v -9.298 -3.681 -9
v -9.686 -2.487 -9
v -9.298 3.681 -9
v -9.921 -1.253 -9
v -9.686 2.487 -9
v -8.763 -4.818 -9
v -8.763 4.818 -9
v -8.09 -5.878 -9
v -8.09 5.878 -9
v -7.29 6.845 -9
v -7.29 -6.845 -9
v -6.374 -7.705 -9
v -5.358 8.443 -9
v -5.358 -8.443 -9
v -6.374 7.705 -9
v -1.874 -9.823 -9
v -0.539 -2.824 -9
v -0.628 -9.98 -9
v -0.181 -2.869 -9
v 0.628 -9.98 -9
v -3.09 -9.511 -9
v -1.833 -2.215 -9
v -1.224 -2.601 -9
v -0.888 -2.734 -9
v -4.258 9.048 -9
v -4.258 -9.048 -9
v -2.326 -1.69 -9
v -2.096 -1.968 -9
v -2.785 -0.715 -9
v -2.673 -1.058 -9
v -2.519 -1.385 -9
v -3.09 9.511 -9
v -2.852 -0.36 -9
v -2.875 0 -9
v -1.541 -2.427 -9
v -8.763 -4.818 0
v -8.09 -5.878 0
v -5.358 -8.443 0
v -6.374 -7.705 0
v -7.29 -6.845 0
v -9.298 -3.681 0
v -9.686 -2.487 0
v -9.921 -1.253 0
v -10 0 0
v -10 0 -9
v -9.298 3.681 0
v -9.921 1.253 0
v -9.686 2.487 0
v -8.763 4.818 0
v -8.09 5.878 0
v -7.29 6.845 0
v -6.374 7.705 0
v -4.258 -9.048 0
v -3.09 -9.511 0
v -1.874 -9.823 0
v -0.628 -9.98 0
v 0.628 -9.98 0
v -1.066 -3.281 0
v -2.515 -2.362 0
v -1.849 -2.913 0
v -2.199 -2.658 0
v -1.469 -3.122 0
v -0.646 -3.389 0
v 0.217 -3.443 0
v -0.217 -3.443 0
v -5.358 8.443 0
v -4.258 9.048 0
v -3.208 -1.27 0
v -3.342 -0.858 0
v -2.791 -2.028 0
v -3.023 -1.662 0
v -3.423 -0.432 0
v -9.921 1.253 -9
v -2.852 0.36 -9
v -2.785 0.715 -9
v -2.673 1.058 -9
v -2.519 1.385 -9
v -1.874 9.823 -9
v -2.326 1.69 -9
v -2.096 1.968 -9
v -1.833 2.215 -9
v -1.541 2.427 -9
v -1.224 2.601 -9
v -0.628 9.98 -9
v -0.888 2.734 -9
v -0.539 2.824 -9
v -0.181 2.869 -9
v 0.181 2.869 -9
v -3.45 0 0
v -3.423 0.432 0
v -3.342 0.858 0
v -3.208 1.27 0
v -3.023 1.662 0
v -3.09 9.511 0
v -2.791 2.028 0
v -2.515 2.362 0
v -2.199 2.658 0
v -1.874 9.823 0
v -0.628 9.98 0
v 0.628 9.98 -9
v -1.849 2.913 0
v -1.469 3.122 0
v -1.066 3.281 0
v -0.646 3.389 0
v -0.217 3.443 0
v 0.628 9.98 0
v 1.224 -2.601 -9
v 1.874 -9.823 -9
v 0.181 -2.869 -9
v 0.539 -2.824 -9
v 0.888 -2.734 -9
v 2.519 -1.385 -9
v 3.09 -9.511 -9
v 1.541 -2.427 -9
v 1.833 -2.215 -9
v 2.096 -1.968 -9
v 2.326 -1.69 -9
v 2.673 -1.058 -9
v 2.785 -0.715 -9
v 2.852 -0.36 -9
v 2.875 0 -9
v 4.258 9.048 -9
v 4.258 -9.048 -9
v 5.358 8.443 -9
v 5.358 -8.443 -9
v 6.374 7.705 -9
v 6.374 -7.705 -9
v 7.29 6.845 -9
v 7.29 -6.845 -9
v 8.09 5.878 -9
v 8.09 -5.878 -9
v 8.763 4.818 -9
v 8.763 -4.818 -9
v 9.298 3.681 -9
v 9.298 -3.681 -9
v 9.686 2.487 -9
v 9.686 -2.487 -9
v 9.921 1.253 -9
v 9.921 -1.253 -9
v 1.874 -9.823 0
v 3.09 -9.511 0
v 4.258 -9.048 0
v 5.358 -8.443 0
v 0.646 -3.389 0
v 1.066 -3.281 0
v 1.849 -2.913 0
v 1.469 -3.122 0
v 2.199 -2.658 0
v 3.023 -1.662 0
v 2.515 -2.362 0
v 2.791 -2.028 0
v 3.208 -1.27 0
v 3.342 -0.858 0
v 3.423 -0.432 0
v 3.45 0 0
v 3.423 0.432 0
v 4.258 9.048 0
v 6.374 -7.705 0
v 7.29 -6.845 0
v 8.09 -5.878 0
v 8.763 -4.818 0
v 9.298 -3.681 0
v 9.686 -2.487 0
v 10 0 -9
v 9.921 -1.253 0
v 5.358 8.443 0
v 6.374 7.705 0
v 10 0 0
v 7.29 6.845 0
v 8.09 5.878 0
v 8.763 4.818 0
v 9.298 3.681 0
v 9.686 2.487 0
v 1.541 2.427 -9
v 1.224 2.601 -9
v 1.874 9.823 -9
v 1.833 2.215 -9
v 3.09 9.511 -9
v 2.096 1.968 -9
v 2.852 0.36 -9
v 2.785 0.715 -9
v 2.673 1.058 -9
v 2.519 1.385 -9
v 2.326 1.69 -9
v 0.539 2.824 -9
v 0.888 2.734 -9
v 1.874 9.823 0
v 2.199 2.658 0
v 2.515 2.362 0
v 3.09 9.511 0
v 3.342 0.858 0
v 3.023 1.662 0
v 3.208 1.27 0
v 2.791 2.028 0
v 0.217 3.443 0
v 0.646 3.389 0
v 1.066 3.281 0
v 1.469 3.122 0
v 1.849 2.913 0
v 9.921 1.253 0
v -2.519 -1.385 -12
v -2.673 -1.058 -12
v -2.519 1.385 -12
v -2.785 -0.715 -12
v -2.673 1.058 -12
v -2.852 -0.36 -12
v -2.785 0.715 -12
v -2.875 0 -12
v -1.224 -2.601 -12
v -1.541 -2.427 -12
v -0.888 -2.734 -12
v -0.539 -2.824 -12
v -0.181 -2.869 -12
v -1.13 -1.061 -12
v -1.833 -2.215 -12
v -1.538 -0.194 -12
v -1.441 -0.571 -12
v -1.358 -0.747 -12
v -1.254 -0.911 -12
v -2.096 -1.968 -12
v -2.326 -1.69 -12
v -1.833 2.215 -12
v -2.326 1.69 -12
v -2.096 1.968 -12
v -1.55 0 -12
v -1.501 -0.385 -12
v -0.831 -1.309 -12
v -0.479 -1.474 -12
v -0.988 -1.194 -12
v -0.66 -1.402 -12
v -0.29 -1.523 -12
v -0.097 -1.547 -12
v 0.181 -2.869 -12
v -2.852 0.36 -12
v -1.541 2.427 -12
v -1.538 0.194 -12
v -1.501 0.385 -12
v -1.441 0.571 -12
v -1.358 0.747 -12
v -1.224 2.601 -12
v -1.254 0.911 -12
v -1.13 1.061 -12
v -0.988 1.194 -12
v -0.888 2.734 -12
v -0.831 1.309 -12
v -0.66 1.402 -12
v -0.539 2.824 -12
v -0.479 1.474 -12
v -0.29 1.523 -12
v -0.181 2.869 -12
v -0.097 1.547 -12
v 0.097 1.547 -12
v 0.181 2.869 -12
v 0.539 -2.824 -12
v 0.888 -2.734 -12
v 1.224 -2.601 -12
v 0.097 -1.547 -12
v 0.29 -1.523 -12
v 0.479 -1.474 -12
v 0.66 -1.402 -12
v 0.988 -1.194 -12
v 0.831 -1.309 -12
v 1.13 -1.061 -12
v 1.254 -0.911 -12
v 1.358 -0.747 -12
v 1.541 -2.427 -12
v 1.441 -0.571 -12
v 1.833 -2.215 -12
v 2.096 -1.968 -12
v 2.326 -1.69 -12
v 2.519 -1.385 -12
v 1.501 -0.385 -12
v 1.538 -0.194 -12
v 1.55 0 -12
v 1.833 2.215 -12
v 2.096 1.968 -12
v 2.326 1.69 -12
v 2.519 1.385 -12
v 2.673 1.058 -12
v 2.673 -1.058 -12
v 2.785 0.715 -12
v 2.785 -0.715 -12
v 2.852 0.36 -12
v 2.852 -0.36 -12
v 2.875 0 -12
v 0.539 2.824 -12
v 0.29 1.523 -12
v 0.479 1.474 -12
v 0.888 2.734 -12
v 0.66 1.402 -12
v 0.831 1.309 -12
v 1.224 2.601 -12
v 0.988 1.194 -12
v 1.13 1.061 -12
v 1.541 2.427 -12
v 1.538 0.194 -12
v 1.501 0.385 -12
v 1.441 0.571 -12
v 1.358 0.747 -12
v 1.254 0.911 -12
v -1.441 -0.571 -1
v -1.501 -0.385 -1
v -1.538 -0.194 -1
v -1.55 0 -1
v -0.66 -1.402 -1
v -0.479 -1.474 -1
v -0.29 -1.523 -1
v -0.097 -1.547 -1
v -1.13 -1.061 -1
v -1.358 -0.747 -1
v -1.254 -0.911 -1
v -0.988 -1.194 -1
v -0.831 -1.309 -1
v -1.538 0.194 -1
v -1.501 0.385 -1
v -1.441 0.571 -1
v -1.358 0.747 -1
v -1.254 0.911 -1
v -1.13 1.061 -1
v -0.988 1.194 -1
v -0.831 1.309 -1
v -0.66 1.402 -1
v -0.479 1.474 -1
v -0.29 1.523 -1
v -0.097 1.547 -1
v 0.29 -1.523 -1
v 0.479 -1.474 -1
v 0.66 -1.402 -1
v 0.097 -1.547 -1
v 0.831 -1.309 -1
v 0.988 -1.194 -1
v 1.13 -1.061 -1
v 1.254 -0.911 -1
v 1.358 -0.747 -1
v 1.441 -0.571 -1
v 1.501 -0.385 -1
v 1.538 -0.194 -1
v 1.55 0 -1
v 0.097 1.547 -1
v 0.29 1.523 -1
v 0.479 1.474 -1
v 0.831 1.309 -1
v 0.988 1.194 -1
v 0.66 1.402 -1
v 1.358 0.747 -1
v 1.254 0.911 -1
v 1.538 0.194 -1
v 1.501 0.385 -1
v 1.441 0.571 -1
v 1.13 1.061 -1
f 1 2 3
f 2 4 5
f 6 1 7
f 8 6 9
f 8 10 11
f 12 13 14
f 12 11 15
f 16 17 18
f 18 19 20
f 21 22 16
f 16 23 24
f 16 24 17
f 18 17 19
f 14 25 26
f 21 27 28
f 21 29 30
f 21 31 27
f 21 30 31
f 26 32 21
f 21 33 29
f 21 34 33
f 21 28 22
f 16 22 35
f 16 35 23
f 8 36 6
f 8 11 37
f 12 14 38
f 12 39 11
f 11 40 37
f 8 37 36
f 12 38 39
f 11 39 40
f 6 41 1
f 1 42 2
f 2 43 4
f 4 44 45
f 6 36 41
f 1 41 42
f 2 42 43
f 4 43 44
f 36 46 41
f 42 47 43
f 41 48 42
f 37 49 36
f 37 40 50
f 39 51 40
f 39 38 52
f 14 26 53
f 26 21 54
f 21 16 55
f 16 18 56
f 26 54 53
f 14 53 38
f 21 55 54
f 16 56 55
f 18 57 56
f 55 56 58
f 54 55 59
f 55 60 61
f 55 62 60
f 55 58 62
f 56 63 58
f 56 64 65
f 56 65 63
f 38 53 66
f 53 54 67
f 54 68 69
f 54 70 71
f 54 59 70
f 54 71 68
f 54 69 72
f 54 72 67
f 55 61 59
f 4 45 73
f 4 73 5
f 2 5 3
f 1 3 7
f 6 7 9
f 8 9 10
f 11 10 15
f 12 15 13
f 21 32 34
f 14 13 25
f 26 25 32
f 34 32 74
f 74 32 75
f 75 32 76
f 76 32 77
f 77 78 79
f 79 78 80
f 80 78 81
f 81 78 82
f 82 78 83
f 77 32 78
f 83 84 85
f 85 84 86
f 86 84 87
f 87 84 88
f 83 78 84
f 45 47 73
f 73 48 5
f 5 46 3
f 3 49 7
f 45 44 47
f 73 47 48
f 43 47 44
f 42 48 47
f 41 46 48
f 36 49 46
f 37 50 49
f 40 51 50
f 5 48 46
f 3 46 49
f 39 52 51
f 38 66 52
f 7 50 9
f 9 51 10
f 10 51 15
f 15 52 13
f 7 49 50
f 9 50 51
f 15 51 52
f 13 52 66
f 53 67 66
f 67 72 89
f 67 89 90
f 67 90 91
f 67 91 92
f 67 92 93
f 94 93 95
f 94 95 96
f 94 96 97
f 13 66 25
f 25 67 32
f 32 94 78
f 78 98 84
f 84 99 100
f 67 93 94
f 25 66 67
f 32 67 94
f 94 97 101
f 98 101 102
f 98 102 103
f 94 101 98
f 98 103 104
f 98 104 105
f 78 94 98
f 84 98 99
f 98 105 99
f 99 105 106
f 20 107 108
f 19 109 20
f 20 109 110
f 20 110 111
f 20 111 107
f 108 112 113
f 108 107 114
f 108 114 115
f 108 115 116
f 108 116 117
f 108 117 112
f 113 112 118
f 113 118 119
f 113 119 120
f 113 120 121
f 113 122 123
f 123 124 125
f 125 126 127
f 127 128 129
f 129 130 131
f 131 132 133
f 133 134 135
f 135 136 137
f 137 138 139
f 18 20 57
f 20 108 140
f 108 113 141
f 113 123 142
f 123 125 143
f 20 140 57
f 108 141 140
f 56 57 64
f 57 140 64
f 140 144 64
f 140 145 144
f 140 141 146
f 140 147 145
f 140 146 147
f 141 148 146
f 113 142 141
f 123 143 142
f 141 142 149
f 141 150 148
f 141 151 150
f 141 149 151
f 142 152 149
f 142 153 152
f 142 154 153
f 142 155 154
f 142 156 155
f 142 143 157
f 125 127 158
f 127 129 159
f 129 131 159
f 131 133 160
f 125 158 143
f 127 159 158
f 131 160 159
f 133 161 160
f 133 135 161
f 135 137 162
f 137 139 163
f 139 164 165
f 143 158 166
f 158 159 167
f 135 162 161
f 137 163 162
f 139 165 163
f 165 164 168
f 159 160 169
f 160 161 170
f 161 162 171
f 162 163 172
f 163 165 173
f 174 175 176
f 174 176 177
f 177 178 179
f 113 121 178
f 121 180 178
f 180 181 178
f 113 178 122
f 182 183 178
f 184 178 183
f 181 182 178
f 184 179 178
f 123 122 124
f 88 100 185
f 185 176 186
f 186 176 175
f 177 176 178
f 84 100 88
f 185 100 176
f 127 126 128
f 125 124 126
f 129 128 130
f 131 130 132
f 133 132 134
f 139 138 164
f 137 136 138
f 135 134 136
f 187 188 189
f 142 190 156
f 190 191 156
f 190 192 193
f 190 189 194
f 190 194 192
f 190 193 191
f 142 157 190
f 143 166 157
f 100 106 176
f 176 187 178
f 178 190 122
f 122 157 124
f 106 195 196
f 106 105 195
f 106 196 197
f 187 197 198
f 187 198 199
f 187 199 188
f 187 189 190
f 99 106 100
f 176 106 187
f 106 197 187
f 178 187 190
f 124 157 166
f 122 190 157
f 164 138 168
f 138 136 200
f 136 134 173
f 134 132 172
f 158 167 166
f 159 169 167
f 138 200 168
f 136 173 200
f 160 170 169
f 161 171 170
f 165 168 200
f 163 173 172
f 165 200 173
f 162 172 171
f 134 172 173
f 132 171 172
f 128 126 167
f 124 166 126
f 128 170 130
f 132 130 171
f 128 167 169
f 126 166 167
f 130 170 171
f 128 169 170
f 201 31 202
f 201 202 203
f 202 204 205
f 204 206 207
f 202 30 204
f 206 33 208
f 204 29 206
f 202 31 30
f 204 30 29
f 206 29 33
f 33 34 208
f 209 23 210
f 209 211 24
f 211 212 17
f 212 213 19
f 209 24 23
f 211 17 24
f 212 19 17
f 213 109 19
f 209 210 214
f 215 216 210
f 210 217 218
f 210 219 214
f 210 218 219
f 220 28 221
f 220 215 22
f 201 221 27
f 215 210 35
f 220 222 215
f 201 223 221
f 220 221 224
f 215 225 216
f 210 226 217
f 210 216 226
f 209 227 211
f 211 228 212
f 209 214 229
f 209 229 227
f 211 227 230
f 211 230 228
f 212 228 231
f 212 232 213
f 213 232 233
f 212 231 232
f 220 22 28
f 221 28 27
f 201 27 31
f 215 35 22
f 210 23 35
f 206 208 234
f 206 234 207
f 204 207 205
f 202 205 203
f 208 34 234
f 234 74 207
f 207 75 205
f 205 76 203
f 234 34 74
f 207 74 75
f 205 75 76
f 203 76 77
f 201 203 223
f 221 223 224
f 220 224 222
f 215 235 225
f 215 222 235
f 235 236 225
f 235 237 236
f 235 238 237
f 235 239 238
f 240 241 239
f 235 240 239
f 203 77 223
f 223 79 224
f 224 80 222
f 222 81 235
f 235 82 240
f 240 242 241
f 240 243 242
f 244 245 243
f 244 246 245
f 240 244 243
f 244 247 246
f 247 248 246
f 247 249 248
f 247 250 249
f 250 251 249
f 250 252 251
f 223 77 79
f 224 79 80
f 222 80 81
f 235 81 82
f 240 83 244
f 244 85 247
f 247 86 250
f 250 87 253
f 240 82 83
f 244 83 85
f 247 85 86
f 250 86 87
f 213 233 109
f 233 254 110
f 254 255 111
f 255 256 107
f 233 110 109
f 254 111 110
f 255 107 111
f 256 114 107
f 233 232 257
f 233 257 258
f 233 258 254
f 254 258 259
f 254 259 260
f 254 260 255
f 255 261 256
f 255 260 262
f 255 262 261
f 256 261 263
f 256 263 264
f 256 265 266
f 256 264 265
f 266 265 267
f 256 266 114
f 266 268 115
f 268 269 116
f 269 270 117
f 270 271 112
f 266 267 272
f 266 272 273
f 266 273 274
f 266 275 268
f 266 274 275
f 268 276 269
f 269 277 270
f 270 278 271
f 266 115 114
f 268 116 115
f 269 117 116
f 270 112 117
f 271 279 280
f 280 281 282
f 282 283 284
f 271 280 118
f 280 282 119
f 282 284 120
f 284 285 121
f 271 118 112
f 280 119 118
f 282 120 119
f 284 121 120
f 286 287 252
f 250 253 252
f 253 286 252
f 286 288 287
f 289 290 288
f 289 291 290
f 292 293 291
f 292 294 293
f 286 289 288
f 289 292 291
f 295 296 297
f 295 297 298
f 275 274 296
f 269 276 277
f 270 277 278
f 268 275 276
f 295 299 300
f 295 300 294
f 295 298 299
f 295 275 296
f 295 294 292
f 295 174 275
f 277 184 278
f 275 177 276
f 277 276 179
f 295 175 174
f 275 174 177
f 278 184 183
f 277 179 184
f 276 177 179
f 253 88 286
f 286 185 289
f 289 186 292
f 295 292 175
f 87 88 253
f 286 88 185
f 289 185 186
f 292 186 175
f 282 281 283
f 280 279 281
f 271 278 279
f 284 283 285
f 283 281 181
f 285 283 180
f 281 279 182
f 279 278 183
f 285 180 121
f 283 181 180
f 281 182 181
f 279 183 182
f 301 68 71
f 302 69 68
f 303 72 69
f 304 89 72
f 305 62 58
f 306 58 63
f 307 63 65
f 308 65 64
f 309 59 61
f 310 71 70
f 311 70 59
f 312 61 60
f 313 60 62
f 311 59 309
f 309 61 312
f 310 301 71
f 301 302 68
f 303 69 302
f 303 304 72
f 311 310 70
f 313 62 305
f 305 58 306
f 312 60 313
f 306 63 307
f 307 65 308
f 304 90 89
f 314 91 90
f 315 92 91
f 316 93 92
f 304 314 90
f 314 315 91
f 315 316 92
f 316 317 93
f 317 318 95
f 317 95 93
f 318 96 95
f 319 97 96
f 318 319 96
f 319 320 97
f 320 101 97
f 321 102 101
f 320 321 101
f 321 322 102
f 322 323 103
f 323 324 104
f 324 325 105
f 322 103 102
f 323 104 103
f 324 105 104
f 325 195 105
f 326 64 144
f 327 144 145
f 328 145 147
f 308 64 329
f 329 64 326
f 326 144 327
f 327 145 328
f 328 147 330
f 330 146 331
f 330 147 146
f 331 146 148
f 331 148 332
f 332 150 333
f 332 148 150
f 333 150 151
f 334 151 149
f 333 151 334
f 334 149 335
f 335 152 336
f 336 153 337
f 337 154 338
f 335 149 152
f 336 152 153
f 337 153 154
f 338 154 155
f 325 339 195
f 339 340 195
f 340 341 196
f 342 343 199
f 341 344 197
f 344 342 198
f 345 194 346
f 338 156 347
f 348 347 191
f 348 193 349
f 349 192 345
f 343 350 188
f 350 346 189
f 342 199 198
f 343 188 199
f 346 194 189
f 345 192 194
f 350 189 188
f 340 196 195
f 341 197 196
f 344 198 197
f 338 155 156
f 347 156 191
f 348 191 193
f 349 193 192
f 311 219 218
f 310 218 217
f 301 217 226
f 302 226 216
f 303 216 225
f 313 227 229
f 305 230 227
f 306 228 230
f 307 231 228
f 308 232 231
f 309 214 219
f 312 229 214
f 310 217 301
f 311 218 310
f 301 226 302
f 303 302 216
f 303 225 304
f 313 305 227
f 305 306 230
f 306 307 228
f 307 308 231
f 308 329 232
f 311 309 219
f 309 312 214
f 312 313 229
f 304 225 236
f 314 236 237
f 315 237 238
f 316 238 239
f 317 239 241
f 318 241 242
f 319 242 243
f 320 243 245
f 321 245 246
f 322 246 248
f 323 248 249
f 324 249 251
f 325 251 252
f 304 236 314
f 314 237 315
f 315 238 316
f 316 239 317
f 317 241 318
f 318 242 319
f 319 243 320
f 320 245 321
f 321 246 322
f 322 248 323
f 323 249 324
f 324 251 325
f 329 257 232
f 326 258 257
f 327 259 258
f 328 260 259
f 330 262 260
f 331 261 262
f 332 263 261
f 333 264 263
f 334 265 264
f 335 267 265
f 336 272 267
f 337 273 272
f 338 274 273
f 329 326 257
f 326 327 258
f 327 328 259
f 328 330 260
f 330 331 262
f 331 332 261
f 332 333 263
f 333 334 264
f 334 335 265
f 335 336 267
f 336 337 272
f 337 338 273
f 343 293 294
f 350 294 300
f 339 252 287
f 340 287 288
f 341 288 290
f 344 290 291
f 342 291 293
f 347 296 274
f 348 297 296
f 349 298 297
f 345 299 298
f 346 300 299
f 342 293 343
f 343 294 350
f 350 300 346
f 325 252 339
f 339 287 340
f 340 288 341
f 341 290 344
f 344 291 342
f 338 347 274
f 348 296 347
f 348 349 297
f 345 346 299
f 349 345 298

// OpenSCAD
$fn = 50;

difference() {
	union() {
		translate(v = [0, 0, -9.0]) {
			cylinder(h = 9, r = 10.0);
		}
		#translate(v = [0, 0, -12.0]) {
			cylinder(h = 12, r = 2.875);
		}
	}
	union() {
		translate(v = [0, 0, 0]) {
			rotate(a = [0, 0, 0]) {
				difference() {
					union() {
						translate(v = [0, 0, -12.0]) {
							cylinder(h = 12, r = 1.25);
						}
						translate(v = [0, 0, -1.0]) {
							cylinder(h = 1.0, r1 = 1.55, r2 = 3.45);
						}
						translate(v = [0, 0, -12.0]) {
							cylinder(h = 12, r = 1.55);
						}
						translate(v = [0, 0, -12.0]) {
							cylinder(h = 12, r = 1.25);
						}
					}
					union();
				}
			}
		}
	}
}
